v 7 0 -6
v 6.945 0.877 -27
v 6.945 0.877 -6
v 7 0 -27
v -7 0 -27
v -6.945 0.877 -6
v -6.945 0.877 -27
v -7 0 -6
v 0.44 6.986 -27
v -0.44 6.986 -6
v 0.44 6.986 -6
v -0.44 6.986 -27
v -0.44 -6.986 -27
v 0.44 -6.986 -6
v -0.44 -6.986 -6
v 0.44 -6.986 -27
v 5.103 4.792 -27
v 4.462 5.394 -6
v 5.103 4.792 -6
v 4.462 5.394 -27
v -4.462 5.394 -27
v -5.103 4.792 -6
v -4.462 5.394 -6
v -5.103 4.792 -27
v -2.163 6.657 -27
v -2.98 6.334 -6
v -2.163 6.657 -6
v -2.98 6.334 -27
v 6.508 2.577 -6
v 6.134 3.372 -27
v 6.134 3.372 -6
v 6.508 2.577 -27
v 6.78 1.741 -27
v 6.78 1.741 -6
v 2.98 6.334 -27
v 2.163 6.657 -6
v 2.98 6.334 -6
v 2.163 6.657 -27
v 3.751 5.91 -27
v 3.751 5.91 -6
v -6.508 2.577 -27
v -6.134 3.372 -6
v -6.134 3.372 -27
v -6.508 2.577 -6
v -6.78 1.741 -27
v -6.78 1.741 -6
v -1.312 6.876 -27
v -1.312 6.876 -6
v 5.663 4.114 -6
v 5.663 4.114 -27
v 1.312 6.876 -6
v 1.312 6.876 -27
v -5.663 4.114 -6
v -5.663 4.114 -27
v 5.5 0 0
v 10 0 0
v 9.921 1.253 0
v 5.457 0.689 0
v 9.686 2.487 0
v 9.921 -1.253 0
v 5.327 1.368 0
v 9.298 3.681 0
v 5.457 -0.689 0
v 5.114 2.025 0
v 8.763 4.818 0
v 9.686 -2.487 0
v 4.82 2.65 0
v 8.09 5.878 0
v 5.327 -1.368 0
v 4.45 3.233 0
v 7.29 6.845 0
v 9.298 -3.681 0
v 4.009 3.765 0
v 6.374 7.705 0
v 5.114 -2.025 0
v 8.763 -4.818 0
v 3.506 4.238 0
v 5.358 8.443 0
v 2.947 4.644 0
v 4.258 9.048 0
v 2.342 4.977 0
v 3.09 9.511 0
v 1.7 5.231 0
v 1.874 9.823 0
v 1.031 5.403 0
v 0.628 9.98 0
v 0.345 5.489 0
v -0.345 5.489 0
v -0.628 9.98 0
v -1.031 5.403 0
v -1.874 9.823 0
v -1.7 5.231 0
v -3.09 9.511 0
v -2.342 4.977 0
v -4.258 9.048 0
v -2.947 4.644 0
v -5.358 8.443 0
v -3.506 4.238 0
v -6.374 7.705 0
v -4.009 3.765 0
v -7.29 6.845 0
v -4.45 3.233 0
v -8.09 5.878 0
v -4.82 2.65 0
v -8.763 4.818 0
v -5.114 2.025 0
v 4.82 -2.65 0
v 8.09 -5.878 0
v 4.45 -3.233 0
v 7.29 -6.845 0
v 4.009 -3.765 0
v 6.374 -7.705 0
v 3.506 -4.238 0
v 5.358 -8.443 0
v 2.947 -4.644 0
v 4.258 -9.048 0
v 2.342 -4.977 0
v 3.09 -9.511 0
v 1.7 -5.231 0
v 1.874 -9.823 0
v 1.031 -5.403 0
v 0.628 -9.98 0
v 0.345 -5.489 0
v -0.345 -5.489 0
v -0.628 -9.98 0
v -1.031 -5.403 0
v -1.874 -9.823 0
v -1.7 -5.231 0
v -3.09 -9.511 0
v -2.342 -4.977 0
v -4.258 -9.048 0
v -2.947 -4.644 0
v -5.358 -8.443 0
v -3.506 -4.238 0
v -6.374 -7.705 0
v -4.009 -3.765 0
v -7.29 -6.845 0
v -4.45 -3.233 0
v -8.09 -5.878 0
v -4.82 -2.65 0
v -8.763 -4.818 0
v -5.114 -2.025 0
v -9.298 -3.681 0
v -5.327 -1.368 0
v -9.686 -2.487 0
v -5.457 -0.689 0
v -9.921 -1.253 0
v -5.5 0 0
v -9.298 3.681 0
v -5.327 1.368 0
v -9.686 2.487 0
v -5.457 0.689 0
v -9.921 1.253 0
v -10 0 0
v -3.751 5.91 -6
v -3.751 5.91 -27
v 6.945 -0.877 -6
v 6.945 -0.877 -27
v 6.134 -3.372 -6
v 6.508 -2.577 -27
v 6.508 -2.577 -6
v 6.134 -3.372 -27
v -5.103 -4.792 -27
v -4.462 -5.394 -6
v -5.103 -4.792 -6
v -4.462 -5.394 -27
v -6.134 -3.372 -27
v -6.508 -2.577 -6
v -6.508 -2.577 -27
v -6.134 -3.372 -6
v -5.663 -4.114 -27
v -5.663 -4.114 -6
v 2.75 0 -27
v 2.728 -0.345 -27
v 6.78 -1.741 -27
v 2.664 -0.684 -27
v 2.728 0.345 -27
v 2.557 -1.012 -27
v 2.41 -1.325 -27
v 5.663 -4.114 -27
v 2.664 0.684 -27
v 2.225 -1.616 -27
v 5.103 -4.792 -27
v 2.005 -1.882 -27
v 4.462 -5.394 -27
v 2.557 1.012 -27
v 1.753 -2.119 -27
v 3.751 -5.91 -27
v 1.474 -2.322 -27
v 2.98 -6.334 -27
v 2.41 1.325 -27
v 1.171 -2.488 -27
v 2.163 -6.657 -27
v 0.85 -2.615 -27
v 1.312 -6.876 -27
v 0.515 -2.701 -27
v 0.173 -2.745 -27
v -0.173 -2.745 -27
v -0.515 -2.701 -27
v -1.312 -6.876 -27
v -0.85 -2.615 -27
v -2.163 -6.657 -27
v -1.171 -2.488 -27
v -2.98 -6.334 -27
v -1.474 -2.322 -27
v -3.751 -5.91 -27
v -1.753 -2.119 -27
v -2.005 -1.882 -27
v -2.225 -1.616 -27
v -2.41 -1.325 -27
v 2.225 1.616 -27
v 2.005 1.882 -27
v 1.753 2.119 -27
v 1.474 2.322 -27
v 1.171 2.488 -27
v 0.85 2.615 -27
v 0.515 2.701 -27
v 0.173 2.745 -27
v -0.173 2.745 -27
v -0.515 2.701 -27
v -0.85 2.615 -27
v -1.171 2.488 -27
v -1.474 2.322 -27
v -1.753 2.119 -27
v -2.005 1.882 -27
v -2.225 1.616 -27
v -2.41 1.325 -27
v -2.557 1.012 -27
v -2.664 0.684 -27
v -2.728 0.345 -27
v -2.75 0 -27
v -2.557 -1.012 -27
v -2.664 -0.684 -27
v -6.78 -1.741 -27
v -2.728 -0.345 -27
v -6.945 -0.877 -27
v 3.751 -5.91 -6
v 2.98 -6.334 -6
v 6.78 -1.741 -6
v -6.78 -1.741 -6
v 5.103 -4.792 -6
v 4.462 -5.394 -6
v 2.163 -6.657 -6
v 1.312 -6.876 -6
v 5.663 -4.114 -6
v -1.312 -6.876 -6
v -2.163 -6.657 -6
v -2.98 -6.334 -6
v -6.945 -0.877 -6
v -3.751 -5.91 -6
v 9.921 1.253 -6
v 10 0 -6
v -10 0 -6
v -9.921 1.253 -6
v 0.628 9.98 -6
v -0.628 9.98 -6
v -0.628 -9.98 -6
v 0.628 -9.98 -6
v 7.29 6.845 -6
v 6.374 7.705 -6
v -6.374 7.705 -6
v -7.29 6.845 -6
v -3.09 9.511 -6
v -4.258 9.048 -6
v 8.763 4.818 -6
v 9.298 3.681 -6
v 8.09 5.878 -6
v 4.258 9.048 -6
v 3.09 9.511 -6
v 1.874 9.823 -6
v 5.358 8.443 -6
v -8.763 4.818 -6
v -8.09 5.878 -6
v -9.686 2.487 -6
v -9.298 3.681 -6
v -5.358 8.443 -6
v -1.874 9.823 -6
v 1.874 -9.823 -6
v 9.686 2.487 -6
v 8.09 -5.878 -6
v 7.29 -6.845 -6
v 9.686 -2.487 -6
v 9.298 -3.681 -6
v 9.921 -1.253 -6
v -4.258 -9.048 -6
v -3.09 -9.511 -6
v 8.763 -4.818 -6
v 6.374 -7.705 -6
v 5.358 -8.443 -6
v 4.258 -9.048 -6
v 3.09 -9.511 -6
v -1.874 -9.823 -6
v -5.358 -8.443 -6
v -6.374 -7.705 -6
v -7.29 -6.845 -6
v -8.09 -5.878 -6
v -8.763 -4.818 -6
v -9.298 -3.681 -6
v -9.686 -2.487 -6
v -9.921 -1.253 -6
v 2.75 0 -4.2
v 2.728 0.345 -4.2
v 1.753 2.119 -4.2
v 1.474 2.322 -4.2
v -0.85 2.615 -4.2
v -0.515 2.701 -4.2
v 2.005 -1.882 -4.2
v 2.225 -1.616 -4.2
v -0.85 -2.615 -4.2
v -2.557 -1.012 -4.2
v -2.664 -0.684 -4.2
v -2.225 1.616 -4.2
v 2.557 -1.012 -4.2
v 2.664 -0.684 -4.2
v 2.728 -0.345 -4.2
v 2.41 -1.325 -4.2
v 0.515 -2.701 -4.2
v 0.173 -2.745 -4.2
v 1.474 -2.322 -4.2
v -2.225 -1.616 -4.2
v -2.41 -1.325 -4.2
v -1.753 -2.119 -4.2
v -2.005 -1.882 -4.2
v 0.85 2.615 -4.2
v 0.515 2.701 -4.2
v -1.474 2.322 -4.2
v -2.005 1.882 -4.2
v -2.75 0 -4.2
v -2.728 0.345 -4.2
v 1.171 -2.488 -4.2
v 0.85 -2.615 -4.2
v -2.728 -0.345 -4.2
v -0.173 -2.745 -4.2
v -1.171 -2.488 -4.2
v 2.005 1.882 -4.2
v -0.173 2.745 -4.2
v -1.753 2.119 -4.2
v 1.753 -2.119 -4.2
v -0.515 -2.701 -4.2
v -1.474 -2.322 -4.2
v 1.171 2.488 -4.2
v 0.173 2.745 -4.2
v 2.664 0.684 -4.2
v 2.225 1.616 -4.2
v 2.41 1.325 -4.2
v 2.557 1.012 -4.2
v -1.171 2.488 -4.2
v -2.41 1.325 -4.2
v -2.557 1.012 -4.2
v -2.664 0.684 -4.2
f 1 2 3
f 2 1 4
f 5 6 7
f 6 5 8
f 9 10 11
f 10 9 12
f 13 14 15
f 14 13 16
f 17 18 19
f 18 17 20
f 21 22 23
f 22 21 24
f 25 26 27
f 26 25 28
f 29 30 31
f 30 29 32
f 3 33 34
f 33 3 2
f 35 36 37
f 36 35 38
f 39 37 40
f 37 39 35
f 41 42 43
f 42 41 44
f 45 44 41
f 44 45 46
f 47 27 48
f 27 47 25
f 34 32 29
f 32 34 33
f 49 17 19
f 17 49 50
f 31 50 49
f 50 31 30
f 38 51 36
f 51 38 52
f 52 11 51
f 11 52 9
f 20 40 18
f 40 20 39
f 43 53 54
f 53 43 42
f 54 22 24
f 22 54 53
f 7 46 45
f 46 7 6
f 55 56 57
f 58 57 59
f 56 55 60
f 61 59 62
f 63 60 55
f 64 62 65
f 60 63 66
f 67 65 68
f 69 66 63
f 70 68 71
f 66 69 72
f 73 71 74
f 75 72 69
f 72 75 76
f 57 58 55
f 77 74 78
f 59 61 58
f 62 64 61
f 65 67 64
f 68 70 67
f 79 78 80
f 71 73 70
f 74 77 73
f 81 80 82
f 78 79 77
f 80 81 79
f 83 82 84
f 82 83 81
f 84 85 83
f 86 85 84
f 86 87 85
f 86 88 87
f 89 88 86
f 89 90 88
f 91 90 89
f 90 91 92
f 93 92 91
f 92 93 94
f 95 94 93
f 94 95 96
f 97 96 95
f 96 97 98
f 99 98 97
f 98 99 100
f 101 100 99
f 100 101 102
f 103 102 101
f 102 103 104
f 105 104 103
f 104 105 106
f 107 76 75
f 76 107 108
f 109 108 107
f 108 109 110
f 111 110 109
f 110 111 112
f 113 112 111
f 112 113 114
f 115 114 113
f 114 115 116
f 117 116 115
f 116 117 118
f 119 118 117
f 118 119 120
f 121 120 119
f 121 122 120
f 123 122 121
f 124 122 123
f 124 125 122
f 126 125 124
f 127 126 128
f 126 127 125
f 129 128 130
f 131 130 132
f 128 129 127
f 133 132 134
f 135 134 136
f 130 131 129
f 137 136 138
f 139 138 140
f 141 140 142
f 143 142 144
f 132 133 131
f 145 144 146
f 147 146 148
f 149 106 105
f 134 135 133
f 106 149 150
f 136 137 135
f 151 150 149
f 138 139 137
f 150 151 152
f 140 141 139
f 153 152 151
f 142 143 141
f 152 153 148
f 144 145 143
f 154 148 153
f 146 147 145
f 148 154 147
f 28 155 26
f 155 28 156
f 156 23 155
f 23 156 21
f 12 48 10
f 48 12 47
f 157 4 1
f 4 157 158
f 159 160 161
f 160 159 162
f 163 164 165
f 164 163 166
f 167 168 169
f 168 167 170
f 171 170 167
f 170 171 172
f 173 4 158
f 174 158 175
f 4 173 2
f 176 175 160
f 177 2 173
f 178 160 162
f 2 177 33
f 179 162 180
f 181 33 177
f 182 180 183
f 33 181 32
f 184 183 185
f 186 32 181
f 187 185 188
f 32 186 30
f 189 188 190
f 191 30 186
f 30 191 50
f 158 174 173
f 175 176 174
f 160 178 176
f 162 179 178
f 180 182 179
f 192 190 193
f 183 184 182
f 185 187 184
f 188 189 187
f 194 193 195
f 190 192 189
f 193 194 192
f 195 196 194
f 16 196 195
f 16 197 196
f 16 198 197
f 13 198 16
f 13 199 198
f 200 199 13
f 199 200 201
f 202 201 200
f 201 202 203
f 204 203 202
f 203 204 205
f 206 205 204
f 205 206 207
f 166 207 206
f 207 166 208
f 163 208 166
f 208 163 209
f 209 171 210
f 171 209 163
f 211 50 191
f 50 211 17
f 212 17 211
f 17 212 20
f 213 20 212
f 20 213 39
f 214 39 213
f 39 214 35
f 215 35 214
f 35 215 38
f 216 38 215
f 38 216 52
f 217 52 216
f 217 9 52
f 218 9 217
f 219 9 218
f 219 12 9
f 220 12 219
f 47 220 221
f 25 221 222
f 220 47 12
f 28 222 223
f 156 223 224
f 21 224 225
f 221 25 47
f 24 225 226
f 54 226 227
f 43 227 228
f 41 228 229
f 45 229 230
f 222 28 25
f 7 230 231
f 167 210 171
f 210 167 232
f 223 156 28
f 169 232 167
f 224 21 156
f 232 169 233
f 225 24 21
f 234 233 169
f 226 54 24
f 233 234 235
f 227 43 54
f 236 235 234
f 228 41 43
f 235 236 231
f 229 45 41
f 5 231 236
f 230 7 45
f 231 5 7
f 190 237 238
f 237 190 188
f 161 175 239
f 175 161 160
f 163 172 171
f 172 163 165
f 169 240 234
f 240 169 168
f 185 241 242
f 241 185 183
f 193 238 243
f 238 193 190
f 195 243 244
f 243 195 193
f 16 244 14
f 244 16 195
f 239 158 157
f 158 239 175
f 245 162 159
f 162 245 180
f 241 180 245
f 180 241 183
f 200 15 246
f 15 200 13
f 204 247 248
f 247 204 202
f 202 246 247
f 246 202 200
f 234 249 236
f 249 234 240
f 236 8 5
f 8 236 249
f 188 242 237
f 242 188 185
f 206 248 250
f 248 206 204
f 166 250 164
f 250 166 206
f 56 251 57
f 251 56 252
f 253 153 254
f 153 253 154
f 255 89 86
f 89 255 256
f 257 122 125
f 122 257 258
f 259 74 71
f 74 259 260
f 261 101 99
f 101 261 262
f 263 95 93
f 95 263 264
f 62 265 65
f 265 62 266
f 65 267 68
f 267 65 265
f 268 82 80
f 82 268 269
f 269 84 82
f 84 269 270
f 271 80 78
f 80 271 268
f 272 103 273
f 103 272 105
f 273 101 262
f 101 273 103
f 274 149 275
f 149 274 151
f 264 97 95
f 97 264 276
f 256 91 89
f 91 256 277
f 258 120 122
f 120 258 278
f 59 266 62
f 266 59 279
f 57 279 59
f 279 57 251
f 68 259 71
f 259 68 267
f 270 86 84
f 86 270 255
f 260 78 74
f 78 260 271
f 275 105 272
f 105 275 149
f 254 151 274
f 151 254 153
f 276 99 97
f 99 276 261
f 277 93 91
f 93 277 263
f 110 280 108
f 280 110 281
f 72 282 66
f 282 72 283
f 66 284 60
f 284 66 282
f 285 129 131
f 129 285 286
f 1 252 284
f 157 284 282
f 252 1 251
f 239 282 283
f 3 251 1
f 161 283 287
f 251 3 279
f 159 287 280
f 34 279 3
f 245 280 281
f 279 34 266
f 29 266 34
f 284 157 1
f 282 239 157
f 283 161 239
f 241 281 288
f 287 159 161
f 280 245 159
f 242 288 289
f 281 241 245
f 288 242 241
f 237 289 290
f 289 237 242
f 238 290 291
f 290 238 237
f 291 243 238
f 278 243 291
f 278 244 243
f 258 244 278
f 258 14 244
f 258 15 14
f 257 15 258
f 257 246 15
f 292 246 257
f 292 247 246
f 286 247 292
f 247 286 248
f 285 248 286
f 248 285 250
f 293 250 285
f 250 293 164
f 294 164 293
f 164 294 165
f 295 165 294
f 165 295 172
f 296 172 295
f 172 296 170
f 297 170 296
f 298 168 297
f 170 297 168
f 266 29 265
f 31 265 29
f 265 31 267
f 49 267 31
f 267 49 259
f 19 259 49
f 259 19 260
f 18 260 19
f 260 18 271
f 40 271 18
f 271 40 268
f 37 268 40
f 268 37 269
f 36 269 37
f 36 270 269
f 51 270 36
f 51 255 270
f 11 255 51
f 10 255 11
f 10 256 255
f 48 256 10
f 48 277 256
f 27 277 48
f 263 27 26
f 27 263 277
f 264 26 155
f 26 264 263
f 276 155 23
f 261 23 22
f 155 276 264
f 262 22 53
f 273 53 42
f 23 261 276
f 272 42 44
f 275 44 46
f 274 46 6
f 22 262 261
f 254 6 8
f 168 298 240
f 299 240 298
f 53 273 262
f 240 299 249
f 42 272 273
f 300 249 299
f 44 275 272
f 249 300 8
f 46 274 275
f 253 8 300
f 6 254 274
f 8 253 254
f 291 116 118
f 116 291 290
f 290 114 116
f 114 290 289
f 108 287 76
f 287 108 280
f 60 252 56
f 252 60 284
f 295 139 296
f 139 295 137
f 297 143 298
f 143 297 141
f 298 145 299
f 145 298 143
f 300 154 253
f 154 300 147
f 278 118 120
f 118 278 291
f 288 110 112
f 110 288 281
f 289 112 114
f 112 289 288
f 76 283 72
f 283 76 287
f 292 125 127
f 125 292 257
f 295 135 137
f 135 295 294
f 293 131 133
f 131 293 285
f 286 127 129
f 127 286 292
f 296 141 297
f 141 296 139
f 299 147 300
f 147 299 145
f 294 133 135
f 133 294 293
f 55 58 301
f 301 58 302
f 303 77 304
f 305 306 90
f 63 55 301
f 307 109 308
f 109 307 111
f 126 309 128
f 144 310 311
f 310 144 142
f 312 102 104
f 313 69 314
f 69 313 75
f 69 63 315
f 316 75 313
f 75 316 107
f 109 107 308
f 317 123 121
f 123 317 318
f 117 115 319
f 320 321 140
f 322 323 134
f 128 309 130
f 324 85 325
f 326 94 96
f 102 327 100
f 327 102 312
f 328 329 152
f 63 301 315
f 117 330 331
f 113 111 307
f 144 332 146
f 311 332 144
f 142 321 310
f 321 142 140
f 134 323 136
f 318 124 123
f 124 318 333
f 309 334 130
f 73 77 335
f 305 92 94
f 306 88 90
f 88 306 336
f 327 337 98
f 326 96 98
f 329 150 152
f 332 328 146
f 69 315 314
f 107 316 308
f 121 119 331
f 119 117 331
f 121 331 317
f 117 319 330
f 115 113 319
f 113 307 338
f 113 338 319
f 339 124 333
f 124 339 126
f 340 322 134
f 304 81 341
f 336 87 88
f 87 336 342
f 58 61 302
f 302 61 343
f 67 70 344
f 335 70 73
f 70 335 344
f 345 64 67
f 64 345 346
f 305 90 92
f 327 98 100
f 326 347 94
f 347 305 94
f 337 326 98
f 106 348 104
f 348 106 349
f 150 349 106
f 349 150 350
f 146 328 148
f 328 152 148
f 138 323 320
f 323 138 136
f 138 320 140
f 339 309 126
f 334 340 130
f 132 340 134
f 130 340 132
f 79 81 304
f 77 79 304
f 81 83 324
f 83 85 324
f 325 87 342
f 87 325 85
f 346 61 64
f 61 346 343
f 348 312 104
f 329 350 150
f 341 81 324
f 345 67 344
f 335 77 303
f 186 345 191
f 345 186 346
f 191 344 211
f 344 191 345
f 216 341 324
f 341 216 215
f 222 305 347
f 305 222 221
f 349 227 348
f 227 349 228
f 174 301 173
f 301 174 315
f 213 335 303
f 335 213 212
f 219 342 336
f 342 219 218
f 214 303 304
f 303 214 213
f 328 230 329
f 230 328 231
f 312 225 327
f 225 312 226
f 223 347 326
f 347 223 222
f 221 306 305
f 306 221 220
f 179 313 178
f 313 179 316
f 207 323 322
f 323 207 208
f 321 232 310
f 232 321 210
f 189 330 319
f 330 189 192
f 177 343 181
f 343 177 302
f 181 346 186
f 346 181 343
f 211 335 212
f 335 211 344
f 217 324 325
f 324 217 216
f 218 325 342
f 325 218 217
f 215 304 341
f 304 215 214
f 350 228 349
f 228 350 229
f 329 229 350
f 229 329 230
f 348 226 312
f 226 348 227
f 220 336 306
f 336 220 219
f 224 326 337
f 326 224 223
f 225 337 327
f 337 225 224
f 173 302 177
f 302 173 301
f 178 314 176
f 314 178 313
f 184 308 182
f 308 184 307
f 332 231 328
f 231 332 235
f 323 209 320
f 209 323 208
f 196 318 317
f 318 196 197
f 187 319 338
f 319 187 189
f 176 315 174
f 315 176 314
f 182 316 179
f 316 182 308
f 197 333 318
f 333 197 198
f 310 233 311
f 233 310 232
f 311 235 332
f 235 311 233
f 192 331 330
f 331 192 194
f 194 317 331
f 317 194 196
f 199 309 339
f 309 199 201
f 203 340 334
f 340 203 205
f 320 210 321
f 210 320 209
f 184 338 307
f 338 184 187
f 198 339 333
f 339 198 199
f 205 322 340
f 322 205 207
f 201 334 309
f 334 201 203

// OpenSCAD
$fn = 50;


difference() {
	union() {
		translate(v = [0, 0, -27.0000000000]) {
			cylinder(h = 27, r = 7.0000000000);
		}
		translate(v = [0, 0, -6.0000000000]) {
			cylinder(h = 6, r = 10.0000000000);
		}
	}
	union() {
		translate(v = [0, 0, 0]) {
			rotate(a = [0, 0, 0]) {
				difference() {
					union() {
						#translate(v = [0, 0, -27.0000000000]) {
							cylinder(h = 27, r = 2.2500000000);
						}
						#translate(v = [0, 0, -4.2000000000]) {
							cylinder(h = 4.2000000000, r1 = 2.7500000000, r2 = 5.5000000000);
						}
						#translate(v = [0, 0, -27.0000000000]) {
							cylinder(h = 27, r = 2.7500000000);
						}
						#translate(v = [0, 0, -27.0000000000]) {
							cylinder(h = 27, r = 2.2500000000);
						}
					}
					union();
				}
			}
		}
	}
}
